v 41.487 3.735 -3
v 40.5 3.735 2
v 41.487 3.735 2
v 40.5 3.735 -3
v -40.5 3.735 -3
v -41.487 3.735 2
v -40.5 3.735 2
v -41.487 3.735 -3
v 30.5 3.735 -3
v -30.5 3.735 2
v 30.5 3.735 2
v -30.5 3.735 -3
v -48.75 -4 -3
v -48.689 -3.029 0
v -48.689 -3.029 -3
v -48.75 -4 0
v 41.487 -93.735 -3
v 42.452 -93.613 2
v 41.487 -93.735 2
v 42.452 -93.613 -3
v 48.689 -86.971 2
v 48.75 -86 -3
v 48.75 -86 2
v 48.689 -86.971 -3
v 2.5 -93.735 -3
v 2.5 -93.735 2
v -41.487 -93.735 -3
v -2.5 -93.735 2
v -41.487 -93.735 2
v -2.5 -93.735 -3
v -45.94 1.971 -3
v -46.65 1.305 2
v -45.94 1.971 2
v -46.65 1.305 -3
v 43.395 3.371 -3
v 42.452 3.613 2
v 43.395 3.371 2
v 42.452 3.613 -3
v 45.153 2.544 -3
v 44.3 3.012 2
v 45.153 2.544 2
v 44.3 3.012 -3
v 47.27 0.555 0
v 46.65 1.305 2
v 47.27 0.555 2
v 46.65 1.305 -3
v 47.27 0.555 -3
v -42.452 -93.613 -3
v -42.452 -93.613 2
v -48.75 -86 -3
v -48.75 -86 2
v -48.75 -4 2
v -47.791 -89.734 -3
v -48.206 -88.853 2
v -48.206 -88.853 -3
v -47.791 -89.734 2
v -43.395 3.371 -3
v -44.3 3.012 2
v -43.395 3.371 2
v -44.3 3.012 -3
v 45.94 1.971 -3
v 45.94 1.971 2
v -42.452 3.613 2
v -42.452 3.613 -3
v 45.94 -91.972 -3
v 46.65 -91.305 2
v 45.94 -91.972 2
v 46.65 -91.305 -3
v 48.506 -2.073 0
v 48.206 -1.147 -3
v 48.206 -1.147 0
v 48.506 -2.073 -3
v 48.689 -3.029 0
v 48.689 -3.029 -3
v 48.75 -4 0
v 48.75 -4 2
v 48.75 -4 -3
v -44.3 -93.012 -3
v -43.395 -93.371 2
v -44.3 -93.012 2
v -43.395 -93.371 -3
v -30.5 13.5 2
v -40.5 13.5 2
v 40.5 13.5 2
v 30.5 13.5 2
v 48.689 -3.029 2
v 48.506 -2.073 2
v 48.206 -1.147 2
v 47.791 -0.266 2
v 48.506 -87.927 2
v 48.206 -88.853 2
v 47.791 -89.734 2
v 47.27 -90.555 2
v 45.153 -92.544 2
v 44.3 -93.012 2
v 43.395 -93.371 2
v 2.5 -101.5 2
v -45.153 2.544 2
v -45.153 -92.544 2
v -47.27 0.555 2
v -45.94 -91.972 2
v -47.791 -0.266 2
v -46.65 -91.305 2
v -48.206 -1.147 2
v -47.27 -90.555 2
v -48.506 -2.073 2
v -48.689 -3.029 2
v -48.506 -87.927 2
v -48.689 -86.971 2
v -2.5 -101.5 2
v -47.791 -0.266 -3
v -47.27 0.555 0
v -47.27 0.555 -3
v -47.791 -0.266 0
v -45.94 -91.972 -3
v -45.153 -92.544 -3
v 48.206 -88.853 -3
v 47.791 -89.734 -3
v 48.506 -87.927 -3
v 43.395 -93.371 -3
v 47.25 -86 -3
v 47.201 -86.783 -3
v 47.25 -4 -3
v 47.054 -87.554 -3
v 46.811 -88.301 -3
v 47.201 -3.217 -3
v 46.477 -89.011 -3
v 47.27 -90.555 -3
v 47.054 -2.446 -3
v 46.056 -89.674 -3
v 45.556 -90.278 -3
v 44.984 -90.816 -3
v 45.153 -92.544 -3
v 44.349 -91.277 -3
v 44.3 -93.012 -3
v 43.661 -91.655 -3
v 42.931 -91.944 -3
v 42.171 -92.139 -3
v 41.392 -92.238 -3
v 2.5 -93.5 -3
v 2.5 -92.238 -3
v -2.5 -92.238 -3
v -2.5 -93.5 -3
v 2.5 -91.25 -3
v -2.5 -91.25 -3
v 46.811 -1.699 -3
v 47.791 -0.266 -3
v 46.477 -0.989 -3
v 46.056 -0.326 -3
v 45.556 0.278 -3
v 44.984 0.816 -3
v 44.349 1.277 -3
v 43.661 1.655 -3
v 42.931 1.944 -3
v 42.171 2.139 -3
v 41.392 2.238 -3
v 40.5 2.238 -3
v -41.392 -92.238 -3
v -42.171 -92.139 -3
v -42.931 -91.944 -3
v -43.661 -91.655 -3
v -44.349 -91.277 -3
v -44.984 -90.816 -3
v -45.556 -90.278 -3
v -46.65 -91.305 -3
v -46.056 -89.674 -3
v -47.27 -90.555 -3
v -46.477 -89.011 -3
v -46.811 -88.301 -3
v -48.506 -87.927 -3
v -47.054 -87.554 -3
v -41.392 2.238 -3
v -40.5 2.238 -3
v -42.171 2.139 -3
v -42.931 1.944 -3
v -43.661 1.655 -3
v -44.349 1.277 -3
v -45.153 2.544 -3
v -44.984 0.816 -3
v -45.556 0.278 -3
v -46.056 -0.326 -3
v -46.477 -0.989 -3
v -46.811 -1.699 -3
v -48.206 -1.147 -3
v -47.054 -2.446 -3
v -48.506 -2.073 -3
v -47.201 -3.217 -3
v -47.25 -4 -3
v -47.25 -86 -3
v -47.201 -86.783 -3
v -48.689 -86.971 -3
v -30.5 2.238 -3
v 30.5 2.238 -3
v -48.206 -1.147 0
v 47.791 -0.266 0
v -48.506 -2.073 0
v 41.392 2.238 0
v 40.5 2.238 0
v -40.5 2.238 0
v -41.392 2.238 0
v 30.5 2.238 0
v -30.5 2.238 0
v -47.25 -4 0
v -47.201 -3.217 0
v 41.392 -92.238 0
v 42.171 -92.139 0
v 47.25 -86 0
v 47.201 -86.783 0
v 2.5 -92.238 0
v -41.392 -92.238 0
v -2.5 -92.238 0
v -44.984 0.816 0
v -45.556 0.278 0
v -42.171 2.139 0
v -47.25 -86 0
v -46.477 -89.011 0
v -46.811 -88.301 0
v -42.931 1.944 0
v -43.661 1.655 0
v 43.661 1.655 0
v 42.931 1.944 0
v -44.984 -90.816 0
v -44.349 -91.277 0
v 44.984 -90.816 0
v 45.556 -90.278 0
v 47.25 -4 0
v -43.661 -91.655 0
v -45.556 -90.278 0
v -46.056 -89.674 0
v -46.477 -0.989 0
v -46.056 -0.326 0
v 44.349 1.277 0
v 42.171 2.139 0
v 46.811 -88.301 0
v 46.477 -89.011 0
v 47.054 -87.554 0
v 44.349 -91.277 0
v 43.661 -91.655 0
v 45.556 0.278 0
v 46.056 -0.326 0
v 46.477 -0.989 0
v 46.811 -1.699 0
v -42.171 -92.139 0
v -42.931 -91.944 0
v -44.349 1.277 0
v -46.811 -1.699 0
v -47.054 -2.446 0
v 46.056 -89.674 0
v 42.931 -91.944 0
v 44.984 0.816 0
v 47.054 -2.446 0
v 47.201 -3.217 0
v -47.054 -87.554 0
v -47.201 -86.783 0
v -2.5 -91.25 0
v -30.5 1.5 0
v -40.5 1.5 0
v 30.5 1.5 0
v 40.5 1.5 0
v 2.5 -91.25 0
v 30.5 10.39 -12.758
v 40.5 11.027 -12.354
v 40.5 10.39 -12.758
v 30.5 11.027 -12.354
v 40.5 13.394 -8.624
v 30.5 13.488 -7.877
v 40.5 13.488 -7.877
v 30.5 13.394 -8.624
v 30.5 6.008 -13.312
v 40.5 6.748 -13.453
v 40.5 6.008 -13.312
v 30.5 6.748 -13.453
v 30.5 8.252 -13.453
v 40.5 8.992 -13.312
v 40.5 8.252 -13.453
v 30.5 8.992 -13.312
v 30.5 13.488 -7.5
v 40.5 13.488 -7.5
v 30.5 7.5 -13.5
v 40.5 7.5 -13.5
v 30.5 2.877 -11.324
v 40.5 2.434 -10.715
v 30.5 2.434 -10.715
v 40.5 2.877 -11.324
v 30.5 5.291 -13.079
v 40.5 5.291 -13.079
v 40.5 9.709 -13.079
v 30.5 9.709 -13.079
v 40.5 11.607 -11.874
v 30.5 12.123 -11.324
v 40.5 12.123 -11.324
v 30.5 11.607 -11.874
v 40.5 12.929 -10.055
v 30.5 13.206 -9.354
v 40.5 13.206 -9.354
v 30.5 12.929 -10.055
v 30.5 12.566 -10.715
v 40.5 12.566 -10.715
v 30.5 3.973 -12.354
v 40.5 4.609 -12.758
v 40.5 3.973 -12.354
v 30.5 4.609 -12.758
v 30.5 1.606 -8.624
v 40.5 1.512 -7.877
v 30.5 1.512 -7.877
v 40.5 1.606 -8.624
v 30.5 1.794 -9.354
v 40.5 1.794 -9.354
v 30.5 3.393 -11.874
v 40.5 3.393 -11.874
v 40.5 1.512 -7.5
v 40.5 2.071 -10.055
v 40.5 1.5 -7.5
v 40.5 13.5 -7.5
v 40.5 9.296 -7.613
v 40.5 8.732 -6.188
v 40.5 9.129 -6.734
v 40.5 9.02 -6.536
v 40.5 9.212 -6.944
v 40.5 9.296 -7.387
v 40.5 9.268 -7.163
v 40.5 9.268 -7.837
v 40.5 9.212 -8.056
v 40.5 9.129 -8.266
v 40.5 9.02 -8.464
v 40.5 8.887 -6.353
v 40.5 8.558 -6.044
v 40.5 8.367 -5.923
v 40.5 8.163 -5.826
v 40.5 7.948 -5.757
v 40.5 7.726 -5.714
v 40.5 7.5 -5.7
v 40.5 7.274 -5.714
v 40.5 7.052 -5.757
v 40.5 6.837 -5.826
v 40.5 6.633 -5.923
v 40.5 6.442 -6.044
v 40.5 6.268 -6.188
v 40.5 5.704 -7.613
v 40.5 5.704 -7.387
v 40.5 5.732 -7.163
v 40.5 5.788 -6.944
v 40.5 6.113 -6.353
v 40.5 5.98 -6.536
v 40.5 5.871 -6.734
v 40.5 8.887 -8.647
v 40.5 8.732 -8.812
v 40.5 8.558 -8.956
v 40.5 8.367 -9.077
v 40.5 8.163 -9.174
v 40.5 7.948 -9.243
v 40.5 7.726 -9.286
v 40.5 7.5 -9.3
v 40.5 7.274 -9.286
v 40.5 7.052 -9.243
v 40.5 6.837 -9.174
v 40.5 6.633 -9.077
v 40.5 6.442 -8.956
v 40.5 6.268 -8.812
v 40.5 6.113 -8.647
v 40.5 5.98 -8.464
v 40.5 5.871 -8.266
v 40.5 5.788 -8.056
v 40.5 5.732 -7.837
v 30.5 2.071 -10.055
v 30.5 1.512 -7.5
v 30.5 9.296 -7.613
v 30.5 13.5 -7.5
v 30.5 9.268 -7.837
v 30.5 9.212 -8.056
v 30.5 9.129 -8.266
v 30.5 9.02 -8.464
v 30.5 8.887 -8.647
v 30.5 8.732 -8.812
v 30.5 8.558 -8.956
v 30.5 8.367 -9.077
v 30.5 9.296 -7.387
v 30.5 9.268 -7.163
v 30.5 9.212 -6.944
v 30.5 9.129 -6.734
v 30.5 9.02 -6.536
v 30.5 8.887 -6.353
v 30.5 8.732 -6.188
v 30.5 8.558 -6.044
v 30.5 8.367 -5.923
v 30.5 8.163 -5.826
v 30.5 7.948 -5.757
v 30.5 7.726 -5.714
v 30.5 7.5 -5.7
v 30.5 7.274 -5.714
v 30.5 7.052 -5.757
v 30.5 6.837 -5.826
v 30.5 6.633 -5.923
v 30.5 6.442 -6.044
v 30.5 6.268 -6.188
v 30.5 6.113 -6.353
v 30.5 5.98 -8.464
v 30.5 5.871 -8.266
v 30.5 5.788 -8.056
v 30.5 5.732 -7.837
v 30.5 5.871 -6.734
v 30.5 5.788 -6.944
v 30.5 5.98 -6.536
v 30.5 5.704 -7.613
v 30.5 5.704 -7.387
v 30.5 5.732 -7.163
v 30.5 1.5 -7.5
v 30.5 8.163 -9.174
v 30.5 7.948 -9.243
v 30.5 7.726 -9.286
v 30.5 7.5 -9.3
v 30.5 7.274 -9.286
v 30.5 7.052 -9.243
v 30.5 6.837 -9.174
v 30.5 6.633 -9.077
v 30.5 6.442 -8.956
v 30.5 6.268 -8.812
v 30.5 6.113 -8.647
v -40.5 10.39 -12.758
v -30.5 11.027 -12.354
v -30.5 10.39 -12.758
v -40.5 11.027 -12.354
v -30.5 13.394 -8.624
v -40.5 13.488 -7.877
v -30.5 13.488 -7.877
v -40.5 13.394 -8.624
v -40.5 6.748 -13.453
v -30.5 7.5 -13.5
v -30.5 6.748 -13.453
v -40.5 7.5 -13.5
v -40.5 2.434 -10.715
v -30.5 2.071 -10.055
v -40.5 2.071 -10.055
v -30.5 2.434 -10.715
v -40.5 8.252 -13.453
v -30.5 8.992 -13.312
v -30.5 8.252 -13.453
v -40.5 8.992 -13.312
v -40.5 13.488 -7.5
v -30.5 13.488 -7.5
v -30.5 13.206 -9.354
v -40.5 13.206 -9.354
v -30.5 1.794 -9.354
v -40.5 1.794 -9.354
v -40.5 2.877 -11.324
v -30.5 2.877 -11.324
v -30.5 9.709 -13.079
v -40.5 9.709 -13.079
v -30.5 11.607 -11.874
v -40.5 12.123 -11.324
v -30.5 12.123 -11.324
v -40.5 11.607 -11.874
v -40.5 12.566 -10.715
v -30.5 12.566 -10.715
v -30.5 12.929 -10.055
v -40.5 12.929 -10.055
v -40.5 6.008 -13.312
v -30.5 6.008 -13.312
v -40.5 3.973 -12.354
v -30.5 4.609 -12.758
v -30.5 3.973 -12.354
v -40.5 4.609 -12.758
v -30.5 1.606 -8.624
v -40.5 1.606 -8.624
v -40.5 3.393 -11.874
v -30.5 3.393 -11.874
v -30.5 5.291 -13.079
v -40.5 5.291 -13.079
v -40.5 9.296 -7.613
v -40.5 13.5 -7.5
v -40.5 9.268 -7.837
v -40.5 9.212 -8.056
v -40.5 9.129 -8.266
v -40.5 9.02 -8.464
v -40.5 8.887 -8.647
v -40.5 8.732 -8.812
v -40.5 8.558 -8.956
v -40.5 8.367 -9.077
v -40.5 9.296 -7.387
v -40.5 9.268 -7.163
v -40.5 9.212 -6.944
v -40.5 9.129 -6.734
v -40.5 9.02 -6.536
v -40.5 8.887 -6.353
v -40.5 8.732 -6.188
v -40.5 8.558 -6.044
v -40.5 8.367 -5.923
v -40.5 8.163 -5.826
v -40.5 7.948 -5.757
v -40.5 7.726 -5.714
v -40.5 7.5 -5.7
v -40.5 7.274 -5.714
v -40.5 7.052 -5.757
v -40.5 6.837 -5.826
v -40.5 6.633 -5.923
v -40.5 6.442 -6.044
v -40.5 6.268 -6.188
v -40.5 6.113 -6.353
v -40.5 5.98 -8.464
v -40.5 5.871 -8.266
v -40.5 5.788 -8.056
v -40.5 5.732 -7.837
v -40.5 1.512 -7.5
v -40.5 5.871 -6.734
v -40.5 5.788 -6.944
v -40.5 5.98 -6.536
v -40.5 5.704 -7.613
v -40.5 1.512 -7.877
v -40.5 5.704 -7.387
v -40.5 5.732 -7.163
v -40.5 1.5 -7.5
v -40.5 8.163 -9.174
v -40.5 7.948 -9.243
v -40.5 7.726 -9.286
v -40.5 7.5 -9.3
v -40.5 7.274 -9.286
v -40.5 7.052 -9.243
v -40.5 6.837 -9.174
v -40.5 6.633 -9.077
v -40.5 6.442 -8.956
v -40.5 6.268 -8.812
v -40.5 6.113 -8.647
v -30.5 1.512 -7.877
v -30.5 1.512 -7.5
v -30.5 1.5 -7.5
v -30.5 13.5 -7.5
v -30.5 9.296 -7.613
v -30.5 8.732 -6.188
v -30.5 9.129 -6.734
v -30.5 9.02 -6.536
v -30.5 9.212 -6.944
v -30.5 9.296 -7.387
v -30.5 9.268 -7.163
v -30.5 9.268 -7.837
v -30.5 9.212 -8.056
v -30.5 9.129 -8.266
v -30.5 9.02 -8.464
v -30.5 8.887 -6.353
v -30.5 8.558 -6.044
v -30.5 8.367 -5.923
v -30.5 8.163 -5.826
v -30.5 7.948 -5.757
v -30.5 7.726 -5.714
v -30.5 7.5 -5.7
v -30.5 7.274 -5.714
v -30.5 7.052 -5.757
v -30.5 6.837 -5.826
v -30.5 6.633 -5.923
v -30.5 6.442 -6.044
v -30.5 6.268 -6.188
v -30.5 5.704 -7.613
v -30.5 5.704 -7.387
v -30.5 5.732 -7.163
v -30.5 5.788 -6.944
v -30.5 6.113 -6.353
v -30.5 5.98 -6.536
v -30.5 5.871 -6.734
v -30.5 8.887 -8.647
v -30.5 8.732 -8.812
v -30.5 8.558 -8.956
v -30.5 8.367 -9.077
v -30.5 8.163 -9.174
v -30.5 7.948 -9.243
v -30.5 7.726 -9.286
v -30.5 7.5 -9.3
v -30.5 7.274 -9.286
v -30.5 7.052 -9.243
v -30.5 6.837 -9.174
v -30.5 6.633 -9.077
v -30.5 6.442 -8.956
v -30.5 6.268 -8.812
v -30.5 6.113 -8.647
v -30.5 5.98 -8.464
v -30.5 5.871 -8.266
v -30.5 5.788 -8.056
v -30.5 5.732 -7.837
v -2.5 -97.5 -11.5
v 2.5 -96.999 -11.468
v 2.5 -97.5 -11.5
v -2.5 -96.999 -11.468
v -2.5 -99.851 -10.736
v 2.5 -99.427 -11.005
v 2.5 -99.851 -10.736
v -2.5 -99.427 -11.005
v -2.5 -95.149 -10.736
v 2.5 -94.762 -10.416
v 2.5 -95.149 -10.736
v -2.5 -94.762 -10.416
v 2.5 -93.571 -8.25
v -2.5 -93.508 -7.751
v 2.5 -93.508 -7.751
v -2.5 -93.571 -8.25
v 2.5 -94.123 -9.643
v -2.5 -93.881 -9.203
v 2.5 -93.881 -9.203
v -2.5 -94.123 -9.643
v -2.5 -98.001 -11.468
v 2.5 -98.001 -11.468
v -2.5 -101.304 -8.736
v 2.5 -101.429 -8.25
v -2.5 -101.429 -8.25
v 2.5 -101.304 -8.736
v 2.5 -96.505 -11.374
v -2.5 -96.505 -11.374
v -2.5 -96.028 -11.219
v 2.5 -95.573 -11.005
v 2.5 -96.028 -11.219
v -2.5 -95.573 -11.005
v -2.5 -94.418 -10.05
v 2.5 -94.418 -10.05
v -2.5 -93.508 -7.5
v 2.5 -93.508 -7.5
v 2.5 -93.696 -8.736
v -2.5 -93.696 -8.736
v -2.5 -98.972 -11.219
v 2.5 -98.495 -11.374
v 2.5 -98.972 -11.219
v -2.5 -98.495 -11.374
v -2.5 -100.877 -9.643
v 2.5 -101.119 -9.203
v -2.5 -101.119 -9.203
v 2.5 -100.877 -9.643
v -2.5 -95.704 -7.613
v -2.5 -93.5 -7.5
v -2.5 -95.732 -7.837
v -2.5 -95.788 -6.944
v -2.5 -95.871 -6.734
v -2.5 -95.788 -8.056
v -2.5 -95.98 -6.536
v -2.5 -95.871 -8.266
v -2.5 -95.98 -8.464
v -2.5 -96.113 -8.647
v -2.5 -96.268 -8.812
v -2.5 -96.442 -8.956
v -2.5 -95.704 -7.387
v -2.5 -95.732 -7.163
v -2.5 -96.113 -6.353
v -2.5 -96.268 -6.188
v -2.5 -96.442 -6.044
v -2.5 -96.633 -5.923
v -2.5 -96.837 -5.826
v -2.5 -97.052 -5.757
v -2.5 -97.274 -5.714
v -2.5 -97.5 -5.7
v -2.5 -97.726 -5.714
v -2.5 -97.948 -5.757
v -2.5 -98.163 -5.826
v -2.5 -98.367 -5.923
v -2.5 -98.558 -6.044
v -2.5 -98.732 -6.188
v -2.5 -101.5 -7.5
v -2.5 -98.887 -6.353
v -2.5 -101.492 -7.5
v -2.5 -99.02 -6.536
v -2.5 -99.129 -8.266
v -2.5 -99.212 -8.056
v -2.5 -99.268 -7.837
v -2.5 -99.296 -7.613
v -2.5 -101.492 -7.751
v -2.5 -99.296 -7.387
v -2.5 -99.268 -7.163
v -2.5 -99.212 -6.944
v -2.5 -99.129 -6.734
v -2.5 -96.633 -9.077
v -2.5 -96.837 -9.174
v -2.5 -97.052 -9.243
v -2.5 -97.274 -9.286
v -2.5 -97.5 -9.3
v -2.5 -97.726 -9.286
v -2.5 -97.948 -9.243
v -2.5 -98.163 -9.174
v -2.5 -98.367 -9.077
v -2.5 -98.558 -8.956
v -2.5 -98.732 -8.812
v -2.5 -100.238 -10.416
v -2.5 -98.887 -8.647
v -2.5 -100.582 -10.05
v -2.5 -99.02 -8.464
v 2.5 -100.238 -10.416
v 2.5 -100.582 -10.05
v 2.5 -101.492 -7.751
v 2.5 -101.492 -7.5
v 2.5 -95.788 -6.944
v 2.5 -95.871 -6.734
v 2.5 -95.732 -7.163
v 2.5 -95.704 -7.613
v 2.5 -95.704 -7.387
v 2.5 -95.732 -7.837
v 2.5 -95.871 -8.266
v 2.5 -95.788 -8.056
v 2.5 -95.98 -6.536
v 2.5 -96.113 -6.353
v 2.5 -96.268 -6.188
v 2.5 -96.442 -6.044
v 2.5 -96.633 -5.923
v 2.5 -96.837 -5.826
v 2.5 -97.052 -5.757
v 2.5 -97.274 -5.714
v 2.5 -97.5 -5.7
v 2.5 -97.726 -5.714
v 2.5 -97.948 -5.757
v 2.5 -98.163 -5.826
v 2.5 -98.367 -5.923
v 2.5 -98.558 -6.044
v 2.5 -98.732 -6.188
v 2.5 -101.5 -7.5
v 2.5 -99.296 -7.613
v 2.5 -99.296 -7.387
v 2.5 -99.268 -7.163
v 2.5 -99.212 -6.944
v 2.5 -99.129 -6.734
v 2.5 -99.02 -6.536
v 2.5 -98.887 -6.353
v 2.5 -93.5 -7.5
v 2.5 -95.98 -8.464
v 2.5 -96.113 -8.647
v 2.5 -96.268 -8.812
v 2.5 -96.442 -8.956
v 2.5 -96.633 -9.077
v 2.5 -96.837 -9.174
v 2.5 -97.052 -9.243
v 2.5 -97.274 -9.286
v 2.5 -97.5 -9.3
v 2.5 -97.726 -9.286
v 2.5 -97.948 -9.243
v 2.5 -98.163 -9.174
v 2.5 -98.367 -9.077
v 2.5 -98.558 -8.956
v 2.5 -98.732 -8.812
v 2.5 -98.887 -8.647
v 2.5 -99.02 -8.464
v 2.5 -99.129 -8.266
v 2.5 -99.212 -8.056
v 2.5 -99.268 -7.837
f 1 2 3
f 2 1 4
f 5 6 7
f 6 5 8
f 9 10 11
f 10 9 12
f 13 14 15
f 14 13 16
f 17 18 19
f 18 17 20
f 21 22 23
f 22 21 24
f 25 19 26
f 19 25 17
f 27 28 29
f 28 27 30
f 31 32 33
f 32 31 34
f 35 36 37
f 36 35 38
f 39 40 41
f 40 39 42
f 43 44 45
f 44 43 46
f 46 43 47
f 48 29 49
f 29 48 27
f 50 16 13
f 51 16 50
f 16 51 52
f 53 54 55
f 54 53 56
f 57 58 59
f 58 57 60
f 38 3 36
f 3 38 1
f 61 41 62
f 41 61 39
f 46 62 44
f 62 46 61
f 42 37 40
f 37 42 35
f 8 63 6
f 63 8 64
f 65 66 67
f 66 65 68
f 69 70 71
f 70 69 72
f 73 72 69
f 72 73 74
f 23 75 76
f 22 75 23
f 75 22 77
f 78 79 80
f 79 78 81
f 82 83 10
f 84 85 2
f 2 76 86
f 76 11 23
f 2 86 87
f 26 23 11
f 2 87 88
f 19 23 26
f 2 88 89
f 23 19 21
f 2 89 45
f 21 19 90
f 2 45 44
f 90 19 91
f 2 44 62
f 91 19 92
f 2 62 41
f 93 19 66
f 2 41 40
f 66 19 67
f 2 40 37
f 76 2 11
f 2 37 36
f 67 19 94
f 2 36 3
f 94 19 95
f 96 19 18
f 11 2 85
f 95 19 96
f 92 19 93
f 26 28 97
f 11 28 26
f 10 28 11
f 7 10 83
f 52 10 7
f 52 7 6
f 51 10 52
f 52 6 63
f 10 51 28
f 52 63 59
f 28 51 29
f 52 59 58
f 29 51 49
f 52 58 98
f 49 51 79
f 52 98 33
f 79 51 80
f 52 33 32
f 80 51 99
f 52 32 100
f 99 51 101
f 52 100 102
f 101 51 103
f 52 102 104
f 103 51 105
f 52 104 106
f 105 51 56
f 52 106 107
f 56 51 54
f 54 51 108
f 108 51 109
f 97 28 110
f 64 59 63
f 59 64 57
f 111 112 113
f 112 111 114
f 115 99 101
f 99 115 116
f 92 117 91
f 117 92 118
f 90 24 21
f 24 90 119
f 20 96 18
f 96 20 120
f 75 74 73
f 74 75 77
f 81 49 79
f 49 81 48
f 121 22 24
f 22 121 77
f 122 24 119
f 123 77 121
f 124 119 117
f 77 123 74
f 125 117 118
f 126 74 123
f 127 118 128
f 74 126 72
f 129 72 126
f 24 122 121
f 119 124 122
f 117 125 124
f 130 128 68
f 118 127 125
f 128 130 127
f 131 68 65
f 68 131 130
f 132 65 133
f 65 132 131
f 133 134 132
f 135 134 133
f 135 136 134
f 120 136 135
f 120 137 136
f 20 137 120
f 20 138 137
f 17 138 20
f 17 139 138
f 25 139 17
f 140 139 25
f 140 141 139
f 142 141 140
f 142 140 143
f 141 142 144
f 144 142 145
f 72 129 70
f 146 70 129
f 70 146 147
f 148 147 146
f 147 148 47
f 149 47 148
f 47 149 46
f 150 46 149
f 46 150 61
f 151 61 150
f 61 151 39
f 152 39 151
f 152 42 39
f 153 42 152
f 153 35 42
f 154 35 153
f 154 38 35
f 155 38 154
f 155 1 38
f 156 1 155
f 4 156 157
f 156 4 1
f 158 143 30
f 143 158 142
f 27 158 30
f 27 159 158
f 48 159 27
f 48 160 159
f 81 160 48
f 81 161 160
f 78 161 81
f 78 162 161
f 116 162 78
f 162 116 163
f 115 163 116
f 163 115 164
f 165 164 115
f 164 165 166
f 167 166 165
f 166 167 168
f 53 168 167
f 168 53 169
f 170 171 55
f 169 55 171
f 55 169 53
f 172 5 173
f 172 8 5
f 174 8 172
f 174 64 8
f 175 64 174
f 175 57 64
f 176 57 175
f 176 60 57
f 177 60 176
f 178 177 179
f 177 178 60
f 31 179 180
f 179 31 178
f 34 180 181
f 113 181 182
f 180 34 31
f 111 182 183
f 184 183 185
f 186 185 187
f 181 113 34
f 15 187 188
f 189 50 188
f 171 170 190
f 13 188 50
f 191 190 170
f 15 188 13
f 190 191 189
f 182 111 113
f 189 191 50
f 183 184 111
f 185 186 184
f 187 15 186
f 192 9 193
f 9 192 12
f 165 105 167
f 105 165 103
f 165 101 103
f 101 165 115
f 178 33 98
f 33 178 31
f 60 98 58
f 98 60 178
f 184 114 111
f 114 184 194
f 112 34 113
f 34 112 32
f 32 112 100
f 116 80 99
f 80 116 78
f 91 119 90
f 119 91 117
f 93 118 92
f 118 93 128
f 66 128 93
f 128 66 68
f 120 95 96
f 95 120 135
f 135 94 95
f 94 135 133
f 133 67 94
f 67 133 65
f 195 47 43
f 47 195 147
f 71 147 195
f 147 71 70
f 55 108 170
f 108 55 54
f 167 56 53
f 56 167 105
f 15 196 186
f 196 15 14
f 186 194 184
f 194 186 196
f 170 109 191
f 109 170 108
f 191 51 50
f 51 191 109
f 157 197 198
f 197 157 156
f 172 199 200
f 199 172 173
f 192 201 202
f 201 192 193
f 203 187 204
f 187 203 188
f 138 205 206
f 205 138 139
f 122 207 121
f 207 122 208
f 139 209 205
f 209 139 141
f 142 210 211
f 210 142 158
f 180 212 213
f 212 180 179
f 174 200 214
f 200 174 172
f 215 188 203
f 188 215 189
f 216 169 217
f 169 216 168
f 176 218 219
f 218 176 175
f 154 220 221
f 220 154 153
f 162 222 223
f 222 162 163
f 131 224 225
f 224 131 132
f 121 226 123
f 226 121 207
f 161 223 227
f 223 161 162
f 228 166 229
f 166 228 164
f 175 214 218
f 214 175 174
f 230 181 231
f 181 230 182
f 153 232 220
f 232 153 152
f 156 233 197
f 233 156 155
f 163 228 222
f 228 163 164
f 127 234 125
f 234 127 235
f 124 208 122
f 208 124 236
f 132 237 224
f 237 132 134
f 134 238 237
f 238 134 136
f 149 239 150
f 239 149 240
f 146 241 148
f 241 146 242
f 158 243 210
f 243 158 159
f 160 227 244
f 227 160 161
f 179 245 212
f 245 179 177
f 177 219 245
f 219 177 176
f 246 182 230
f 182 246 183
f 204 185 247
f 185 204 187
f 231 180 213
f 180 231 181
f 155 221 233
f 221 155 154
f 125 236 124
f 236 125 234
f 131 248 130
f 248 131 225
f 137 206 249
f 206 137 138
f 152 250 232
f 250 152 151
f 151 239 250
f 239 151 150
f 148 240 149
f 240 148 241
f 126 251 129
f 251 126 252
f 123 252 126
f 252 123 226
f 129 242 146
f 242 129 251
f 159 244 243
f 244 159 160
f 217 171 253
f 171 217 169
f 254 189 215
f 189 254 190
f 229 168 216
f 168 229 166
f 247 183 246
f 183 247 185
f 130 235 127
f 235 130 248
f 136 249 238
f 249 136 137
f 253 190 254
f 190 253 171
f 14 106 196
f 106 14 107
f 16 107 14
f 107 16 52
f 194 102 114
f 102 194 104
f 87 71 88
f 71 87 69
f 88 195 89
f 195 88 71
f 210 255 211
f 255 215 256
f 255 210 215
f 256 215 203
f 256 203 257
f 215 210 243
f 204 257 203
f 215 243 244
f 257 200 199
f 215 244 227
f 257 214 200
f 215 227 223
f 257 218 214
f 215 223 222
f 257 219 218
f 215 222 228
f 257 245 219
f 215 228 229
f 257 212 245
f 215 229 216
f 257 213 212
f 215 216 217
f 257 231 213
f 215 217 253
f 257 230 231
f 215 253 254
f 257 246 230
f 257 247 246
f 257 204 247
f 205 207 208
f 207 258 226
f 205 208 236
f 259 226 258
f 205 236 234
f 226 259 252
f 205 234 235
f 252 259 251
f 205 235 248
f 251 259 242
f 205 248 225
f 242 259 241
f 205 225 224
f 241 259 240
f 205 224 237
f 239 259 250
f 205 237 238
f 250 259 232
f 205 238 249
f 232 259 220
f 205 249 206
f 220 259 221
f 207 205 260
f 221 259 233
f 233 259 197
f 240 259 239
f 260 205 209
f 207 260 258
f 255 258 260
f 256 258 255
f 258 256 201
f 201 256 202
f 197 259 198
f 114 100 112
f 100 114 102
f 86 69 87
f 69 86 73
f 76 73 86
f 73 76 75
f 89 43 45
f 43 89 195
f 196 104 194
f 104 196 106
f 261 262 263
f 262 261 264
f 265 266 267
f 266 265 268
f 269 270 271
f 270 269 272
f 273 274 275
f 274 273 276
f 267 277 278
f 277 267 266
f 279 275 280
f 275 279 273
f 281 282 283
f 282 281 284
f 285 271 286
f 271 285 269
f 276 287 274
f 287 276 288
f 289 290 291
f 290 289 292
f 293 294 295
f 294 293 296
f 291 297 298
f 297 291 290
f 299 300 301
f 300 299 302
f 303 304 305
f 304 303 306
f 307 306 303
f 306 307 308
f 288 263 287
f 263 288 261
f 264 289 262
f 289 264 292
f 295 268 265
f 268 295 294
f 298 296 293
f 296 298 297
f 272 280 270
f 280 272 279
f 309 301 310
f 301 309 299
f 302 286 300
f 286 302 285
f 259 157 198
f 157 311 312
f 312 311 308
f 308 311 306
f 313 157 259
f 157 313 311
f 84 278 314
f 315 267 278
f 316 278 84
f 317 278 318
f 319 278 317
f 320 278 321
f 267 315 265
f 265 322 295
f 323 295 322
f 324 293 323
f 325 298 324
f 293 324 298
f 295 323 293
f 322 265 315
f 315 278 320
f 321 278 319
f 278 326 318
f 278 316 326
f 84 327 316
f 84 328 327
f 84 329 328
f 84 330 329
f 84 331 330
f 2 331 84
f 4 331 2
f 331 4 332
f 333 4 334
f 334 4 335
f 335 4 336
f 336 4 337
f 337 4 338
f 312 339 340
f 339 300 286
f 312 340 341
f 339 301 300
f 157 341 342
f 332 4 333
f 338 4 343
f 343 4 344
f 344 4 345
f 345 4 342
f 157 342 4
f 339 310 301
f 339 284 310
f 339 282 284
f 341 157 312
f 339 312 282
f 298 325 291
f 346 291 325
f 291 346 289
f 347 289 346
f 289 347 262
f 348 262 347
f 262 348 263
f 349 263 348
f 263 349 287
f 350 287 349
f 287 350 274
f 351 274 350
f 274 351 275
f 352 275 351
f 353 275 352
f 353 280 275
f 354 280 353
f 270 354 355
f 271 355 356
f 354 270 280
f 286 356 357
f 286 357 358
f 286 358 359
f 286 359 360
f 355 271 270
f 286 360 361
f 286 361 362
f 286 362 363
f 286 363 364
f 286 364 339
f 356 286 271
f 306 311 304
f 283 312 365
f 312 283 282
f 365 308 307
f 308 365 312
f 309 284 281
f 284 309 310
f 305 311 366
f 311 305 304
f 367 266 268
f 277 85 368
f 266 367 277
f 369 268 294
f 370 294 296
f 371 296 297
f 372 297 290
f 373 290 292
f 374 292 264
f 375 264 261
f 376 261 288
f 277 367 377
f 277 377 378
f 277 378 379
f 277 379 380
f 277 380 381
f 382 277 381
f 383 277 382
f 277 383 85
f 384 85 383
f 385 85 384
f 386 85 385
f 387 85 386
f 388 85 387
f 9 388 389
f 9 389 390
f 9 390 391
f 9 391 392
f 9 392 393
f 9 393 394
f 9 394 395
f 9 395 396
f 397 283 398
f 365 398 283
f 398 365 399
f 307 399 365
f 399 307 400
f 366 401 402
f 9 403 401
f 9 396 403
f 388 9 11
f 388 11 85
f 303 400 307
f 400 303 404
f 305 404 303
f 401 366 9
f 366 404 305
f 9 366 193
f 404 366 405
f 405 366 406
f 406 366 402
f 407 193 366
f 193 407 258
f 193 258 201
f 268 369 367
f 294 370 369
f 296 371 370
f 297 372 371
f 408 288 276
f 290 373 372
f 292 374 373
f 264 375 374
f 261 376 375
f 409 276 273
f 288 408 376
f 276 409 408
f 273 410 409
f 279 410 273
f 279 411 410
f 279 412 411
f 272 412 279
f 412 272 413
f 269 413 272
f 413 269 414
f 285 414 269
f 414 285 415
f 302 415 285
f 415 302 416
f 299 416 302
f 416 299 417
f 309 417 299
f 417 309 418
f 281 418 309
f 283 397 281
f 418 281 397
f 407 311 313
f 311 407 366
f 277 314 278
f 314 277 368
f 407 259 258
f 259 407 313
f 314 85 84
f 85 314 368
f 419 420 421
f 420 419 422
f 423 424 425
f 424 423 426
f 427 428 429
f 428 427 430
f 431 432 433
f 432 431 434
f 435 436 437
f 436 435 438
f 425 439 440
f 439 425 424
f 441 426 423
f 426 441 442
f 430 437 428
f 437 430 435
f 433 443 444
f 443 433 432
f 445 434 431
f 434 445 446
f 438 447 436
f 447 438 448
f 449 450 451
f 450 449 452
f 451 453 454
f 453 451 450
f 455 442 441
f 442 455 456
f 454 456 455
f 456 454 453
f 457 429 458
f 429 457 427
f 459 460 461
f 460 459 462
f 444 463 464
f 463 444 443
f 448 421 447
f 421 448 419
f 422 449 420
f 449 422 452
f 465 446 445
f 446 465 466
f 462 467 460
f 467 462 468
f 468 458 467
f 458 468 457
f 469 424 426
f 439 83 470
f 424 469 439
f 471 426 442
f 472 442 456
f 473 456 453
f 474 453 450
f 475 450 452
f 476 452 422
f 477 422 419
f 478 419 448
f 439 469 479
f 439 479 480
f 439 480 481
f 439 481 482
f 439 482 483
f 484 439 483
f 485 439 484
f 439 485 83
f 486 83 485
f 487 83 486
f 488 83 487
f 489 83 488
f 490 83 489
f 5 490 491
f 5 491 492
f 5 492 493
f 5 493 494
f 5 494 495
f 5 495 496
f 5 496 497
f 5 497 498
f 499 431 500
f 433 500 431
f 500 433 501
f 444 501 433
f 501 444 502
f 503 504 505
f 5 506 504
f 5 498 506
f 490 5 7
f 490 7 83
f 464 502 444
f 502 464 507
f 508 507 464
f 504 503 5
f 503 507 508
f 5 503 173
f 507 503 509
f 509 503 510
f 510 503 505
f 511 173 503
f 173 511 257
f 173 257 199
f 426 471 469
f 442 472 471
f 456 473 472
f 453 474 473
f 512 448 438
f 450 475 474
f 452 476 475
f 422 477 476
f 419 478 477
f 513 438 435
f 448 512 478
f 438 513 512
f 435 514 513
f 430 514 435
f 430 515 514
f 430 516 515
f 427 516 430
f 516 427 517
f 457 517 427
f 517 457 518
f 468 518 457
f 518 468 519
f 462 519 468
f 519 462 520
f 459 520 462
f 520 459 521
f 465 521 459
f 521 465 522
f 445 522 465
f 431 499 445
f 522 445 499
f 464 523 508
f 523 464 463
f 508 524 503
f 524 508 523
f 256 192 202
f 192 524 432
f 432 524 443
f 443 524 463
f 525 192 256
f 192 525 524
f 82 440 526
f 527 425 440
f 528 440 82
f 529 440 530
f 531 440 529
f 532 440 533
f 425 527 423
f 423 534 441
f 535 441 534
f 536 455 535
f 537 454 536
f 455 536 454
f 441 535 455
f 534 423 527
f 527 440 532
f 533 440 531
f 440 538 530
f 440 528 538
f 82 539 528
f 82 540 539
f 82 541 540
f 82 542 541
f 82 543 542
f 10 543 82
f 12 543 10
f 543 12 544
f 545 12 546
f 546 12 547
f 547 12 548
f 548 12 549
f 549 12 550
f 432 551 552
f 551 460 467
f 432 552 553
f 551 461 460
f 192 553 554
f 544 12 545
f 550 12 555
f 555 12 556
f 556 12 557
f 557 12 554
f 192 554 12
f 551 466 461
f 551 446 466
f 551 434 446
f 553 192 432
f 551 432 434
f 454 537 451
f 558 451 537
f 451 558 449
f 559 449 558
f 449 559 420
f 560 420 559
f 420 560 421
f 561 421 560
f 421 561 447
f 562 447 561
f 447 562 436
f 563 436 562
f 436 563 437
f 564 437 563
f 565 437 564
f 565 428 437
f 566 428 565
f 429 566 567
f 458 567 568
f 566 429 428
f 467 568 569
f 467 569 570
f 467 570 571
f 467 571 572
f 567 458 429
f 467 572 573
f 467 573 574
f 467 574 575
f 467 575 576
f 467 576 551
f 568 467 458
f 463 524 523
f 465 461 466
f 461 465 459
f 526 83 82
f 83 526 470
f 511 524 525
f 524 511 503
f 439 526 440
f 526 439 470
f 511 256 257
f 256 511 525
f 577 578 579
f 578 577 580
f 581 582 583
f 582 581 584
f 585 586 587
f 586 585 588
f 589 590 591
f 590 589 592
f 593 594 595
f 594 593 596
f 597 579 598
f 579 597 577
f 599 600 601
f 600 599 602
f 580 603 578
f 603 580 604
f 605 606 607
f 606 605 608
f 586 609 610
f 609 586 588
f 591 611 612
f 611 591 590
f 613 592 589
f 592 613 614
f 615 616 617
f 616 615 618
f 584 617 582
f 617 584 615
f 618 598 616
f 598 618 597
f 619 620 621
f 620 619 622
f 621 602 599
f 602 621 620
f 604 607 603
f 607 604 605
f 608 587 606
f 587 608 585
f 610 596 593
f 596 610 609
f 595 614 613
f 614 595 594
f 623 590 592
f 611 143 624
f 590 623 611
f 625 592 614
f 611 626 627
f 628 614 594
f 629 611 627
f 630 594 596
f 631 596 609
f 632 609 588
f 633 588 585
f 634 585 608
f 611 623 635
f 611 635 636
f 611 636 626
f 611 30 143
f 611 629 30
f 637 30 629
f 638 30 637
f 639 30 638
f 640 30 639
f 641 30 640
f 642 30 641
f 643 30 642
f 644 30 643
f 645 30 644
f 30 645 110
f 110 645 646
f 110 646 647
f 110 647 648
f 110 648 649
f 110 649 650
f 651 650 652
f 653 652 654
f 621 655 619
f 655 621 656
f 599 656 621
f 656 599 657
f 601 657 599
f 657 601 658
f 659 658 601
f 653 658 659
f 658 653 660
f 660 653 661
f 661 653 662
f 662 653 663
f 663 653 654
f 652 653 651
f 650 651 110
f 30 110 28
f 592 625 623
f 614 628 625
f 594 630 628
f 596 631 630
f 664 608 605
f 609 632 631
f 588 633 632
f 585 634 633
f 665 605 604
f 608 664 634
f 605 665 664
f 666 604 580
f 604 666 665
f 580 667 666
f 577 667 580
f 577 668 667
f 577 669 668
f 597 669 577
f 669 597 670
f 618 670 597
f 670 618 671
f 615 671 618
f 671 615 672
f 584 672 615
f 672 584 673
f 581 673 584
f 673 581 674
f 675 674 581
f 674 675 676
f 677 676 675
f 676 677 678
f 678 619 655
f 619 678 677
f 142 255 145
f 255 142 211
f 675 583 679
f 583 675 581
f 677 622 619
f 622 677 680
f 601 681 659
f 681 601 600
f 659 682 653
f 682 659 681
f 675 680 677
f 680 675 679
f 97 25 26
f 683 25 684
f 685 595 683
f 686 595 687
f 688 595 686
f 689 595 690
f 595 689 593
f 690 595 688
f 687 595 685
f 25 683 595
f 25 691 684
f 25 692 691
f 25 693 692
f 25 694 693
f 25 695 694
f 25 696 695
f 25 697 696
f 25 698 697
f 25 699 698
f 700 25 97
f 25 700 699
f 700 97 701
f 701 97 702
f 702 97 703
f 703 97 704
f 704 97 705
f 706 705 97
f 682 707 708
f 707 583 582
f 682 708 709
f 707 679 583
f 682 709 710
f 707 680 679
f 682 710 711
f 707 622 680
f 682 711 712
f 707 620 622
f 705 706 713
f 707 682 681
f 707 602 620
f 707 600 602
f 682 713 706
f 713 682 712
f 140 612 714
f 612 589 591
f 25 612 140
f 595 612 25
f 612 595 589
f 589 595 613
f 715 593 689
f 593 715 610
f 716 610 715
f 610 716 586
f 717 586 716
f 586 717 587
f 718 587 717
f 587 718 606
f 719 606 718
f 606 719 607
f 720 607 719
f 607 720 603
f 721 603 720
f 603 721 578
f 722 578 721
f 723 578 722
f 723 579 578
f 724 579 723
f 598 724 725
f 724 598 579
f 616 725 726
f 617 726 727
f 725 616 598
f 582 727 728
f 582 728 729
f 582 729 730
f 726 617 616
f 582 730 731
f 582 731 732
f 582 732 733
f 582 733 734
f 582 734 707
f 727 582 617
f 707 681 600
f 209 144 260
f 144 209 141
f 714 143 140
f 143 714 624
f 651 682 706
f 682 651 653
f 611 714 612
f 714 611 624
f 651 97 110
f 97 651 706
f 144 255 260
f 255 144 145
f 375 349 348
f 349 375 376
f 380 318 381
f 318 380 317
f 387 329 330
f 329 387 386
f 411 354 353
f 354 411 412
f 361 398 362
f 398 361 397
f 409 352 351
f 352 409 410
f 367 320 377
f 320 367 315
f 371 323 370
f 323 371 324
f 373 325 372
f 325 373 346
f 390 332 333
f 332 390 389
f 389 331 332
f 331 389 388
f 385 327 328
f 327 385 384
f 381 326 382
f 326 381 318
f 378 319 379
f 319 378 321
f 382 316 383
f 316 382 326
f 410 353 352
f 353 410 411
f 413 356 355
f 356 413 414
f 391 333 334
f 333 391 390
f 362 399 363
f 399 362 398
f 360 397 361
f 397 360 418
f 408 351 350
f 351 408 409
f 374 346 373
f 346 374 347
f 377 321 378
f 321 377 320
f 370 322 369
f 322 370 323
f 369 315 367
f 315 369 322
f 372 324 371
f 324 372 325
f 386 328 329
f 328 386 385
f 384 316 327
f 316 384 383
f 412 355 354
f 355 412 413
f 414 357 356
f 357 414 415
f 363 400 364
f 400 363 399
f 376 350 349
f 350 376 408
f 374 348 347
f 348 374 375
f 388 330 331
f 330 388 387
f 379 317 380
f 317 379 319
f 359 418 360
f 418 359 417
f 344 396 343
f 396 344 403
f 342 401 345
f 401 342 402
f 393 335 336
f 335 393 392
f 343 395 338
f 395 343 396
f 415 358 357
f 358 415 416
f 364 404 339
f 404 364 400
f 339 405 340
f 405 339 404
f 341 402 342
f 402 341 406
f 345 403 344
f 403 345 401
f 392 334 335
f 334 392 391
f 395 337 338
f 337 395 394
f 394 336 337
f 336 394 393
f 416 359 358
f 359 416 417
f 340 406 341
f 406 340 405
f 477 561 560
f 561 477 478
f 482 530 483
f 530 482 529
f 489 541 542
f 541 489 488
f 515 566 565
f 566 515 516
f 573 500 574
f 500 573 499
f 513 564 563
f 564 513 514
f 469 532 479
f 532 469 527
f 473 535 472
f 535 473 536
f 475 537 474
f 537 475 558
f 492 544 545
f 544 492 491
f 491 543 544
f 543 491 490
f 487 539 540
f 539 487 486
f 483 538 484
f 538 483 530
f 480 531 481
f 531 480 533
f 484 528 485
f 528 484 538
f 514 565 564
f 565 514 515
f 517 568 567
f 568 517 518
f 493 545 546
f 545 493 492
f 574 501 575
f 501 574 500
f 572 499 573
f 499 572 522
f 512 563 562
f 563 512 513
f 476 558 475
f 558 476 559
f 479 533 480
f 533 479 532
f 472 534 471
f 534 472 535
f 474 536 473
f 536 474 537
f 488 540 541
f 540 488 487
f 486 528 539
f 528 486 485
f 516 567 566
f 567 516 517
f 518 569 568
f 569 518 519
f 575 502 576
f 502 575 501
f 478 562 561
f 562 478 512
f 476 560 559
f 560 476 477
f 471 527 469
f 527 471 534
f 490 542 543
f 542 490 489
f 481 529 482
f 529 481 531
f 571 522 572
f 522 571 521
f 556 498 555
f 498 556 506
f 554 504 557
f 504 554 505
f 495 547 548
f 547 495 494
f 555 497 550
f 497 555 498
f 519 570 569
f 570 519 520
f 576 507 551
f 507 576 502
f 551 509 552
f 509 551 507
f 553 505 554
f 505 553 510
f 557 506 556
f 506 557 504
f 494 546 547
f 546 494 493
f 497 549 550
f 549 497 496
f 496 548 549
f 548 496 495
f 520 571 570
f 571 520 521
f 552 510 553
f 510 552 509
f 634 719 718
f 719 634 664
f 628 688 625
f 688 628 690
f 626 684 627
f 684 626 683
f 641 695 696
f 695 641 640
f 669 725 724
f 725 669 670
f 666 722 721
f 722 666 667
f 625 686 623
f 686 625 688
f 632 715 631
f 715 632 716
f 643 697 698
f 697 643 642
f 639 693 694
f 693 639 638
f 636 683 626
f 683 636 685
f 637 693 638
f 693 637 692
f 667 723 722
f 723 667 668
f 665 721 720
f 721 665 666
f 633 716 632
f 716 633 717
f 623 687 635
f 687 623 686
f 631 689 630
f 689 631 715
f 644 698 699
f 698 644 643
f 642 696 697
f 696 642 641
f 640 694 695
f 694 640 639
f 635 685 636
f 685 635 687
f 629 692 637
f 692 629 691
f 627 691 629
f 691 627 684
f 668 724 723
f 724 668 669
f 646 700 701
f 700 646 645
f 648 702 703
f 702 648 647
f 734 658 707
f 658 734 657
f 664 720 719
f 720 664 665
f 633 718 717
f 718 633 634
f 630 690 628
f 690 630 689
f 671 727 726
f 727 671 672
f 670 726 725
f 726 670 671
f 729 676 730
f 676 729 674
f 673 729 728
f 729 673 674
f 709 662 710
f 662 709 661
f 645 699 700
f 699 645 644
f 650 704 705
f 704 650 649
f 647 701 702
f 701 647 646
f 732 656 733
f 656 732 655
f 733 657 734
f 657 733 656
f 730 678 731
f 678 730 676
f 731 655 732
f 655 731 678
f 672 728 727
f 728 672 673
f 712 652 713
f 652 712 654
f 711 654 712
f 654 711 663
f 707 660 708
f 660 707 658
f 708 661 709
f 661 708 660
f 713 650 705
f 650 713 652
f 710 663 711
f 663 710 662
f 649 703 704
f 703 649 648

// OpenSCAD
$fn = 50;


difference() {
	union() {
		translate(v = [0, -45.0000000000, -3]) {
			rotate(a = [0, 0, 0]) {
				difference() {
					union() {
						hull() {
							translate(v = [-41.0000000000, 41.0000000000, 0]) {
								cylinder(h = 5, r = 7.7500000000);
							}
							translate(v = [41.0000000000, 41.0000000000, 0]) {
								cylinder(h = 5, r = 7.7500000000);
							}
							translate(v = [-41.0000000000, -41.0000000000, 0]) {
								cylinder(h = 5, r = 7.7500000000);
							}
							translate(v = [41.0000000000, -41.0000000000, 0]) {
								cylinder(h = 5, r = 7.7500000000);
							}
						}
					}
					union() {
						hull() {
							translate(v = [-41.0000000000, 41.0000000000, 0]) {
								cylinder(h = 5, r = 6.2500000000);
							}
							translate(v = [41.0000000000, 41.0000000000, 0]) {
								cylinder(h = 5, r = 6.2500000000);
							}
							translate(v = [-41.0000000000, -41.0000000000, 0]) {
								cylinder(h = 5, r = 6.2500000000);
							}
							translate(v = [41.0000000000, -41.0000000000, 0]) {
								cylinder(h = 5, r = 6.2500000000);
							}
						}
					}
				}
			}
		}
		translate(v = [0, -45.0000000000, 0]) {
			hull() {
				translate(v = [-41.0000000000, 41.0000000000, 0]) {
					cylinder(h = 2, r = 7.7500000000);
				}
				translate(v = [41.0000000000, 41.0000000000, 0]) {
					cylinder(h = 2, r = 7.7500000000);
				}
				translate(v = [-41.0000000000, -41.0000000000, 0]) {
					cylinder(h = 2, r = 7.7500000000);
				}
				translate(v = [41.0000000000, -41.0000000000, 0]) {
					cylinder(h = 2, r = 7.7500000000);
				}
			}
		}
		translate(v = [30.5000000000, 7.5000000000, -7.5000000000]) {
			rotate(a = [0, 90, 0]) {
				cylinder(h = 10, r = 6.0000000000);
			}
		}
		translate(v = [30.5000000000, 1.5000000000, -7.5000000000]) {
			cube(size = [10, 12, 7.5000000000]);
		}
		translate(v = [30.5000000000, -15.0000000000, 0.0000000000]) {
			cube(size = [10, 28.5000000000, 2]);
		}
		translate(v = [-40.5000000000, 7.5000000000, -7.5000000000]) {
			rotate(a = [0, 90, 0]) {
				cylinder(h = 10, r = 6.0000000000);
			}
		}
		translate(v = [-40.5000000000, 1.5000000000, -7.5000000000]) {
			cube(size = [10, 12, 7.5000000000]);
		}
		translate(v = [-40.5000000000, -15.0000000000, 0.0000000000]) {
			cube(size = [10, 28.5000000000, 2]);
		}
		translate(v = [-2.5000000000, -97.5000000000, -7.5000000000]) {
			rotate(a = [0, 90, 0]) {
				cylinder(h = 5, r = 4.0000000000);
			}
		}
		translate(v = [-2.5000000000, -101.5000000000, -7.5000000000]) {
			cube(size = [5, 8, 7.5000000000]);
		}
		translate(v = [-2.5000000000, -101.5000000000, -3.0000000000]) {
			cube(size = [5, 10.2500000000, 5]);
		}
	}
	union() {
		translate(v = [30.5000000000, 7.5000000000, -7.5000000000]) {
			rotate(a = [0, 90, 0]) {
				cylinder(h = 10, r = 1.8000000000);
			}
		}
		translate(v = [-40.5000000000, 7.5000000000, -7.5000000000]) {
			rotate(a = [0, 90, 0]) {
				cylinder(h = 10, r = 1.8000000000);
			}
		}
		translate(v = [-5.0000000000, -97.5000000000, -7.5000000000]) {
			rotate(a = [0, 90, 0]) {
				cylinder(h = 10, r = 1.8000000000);
			}
		}
	}
}
